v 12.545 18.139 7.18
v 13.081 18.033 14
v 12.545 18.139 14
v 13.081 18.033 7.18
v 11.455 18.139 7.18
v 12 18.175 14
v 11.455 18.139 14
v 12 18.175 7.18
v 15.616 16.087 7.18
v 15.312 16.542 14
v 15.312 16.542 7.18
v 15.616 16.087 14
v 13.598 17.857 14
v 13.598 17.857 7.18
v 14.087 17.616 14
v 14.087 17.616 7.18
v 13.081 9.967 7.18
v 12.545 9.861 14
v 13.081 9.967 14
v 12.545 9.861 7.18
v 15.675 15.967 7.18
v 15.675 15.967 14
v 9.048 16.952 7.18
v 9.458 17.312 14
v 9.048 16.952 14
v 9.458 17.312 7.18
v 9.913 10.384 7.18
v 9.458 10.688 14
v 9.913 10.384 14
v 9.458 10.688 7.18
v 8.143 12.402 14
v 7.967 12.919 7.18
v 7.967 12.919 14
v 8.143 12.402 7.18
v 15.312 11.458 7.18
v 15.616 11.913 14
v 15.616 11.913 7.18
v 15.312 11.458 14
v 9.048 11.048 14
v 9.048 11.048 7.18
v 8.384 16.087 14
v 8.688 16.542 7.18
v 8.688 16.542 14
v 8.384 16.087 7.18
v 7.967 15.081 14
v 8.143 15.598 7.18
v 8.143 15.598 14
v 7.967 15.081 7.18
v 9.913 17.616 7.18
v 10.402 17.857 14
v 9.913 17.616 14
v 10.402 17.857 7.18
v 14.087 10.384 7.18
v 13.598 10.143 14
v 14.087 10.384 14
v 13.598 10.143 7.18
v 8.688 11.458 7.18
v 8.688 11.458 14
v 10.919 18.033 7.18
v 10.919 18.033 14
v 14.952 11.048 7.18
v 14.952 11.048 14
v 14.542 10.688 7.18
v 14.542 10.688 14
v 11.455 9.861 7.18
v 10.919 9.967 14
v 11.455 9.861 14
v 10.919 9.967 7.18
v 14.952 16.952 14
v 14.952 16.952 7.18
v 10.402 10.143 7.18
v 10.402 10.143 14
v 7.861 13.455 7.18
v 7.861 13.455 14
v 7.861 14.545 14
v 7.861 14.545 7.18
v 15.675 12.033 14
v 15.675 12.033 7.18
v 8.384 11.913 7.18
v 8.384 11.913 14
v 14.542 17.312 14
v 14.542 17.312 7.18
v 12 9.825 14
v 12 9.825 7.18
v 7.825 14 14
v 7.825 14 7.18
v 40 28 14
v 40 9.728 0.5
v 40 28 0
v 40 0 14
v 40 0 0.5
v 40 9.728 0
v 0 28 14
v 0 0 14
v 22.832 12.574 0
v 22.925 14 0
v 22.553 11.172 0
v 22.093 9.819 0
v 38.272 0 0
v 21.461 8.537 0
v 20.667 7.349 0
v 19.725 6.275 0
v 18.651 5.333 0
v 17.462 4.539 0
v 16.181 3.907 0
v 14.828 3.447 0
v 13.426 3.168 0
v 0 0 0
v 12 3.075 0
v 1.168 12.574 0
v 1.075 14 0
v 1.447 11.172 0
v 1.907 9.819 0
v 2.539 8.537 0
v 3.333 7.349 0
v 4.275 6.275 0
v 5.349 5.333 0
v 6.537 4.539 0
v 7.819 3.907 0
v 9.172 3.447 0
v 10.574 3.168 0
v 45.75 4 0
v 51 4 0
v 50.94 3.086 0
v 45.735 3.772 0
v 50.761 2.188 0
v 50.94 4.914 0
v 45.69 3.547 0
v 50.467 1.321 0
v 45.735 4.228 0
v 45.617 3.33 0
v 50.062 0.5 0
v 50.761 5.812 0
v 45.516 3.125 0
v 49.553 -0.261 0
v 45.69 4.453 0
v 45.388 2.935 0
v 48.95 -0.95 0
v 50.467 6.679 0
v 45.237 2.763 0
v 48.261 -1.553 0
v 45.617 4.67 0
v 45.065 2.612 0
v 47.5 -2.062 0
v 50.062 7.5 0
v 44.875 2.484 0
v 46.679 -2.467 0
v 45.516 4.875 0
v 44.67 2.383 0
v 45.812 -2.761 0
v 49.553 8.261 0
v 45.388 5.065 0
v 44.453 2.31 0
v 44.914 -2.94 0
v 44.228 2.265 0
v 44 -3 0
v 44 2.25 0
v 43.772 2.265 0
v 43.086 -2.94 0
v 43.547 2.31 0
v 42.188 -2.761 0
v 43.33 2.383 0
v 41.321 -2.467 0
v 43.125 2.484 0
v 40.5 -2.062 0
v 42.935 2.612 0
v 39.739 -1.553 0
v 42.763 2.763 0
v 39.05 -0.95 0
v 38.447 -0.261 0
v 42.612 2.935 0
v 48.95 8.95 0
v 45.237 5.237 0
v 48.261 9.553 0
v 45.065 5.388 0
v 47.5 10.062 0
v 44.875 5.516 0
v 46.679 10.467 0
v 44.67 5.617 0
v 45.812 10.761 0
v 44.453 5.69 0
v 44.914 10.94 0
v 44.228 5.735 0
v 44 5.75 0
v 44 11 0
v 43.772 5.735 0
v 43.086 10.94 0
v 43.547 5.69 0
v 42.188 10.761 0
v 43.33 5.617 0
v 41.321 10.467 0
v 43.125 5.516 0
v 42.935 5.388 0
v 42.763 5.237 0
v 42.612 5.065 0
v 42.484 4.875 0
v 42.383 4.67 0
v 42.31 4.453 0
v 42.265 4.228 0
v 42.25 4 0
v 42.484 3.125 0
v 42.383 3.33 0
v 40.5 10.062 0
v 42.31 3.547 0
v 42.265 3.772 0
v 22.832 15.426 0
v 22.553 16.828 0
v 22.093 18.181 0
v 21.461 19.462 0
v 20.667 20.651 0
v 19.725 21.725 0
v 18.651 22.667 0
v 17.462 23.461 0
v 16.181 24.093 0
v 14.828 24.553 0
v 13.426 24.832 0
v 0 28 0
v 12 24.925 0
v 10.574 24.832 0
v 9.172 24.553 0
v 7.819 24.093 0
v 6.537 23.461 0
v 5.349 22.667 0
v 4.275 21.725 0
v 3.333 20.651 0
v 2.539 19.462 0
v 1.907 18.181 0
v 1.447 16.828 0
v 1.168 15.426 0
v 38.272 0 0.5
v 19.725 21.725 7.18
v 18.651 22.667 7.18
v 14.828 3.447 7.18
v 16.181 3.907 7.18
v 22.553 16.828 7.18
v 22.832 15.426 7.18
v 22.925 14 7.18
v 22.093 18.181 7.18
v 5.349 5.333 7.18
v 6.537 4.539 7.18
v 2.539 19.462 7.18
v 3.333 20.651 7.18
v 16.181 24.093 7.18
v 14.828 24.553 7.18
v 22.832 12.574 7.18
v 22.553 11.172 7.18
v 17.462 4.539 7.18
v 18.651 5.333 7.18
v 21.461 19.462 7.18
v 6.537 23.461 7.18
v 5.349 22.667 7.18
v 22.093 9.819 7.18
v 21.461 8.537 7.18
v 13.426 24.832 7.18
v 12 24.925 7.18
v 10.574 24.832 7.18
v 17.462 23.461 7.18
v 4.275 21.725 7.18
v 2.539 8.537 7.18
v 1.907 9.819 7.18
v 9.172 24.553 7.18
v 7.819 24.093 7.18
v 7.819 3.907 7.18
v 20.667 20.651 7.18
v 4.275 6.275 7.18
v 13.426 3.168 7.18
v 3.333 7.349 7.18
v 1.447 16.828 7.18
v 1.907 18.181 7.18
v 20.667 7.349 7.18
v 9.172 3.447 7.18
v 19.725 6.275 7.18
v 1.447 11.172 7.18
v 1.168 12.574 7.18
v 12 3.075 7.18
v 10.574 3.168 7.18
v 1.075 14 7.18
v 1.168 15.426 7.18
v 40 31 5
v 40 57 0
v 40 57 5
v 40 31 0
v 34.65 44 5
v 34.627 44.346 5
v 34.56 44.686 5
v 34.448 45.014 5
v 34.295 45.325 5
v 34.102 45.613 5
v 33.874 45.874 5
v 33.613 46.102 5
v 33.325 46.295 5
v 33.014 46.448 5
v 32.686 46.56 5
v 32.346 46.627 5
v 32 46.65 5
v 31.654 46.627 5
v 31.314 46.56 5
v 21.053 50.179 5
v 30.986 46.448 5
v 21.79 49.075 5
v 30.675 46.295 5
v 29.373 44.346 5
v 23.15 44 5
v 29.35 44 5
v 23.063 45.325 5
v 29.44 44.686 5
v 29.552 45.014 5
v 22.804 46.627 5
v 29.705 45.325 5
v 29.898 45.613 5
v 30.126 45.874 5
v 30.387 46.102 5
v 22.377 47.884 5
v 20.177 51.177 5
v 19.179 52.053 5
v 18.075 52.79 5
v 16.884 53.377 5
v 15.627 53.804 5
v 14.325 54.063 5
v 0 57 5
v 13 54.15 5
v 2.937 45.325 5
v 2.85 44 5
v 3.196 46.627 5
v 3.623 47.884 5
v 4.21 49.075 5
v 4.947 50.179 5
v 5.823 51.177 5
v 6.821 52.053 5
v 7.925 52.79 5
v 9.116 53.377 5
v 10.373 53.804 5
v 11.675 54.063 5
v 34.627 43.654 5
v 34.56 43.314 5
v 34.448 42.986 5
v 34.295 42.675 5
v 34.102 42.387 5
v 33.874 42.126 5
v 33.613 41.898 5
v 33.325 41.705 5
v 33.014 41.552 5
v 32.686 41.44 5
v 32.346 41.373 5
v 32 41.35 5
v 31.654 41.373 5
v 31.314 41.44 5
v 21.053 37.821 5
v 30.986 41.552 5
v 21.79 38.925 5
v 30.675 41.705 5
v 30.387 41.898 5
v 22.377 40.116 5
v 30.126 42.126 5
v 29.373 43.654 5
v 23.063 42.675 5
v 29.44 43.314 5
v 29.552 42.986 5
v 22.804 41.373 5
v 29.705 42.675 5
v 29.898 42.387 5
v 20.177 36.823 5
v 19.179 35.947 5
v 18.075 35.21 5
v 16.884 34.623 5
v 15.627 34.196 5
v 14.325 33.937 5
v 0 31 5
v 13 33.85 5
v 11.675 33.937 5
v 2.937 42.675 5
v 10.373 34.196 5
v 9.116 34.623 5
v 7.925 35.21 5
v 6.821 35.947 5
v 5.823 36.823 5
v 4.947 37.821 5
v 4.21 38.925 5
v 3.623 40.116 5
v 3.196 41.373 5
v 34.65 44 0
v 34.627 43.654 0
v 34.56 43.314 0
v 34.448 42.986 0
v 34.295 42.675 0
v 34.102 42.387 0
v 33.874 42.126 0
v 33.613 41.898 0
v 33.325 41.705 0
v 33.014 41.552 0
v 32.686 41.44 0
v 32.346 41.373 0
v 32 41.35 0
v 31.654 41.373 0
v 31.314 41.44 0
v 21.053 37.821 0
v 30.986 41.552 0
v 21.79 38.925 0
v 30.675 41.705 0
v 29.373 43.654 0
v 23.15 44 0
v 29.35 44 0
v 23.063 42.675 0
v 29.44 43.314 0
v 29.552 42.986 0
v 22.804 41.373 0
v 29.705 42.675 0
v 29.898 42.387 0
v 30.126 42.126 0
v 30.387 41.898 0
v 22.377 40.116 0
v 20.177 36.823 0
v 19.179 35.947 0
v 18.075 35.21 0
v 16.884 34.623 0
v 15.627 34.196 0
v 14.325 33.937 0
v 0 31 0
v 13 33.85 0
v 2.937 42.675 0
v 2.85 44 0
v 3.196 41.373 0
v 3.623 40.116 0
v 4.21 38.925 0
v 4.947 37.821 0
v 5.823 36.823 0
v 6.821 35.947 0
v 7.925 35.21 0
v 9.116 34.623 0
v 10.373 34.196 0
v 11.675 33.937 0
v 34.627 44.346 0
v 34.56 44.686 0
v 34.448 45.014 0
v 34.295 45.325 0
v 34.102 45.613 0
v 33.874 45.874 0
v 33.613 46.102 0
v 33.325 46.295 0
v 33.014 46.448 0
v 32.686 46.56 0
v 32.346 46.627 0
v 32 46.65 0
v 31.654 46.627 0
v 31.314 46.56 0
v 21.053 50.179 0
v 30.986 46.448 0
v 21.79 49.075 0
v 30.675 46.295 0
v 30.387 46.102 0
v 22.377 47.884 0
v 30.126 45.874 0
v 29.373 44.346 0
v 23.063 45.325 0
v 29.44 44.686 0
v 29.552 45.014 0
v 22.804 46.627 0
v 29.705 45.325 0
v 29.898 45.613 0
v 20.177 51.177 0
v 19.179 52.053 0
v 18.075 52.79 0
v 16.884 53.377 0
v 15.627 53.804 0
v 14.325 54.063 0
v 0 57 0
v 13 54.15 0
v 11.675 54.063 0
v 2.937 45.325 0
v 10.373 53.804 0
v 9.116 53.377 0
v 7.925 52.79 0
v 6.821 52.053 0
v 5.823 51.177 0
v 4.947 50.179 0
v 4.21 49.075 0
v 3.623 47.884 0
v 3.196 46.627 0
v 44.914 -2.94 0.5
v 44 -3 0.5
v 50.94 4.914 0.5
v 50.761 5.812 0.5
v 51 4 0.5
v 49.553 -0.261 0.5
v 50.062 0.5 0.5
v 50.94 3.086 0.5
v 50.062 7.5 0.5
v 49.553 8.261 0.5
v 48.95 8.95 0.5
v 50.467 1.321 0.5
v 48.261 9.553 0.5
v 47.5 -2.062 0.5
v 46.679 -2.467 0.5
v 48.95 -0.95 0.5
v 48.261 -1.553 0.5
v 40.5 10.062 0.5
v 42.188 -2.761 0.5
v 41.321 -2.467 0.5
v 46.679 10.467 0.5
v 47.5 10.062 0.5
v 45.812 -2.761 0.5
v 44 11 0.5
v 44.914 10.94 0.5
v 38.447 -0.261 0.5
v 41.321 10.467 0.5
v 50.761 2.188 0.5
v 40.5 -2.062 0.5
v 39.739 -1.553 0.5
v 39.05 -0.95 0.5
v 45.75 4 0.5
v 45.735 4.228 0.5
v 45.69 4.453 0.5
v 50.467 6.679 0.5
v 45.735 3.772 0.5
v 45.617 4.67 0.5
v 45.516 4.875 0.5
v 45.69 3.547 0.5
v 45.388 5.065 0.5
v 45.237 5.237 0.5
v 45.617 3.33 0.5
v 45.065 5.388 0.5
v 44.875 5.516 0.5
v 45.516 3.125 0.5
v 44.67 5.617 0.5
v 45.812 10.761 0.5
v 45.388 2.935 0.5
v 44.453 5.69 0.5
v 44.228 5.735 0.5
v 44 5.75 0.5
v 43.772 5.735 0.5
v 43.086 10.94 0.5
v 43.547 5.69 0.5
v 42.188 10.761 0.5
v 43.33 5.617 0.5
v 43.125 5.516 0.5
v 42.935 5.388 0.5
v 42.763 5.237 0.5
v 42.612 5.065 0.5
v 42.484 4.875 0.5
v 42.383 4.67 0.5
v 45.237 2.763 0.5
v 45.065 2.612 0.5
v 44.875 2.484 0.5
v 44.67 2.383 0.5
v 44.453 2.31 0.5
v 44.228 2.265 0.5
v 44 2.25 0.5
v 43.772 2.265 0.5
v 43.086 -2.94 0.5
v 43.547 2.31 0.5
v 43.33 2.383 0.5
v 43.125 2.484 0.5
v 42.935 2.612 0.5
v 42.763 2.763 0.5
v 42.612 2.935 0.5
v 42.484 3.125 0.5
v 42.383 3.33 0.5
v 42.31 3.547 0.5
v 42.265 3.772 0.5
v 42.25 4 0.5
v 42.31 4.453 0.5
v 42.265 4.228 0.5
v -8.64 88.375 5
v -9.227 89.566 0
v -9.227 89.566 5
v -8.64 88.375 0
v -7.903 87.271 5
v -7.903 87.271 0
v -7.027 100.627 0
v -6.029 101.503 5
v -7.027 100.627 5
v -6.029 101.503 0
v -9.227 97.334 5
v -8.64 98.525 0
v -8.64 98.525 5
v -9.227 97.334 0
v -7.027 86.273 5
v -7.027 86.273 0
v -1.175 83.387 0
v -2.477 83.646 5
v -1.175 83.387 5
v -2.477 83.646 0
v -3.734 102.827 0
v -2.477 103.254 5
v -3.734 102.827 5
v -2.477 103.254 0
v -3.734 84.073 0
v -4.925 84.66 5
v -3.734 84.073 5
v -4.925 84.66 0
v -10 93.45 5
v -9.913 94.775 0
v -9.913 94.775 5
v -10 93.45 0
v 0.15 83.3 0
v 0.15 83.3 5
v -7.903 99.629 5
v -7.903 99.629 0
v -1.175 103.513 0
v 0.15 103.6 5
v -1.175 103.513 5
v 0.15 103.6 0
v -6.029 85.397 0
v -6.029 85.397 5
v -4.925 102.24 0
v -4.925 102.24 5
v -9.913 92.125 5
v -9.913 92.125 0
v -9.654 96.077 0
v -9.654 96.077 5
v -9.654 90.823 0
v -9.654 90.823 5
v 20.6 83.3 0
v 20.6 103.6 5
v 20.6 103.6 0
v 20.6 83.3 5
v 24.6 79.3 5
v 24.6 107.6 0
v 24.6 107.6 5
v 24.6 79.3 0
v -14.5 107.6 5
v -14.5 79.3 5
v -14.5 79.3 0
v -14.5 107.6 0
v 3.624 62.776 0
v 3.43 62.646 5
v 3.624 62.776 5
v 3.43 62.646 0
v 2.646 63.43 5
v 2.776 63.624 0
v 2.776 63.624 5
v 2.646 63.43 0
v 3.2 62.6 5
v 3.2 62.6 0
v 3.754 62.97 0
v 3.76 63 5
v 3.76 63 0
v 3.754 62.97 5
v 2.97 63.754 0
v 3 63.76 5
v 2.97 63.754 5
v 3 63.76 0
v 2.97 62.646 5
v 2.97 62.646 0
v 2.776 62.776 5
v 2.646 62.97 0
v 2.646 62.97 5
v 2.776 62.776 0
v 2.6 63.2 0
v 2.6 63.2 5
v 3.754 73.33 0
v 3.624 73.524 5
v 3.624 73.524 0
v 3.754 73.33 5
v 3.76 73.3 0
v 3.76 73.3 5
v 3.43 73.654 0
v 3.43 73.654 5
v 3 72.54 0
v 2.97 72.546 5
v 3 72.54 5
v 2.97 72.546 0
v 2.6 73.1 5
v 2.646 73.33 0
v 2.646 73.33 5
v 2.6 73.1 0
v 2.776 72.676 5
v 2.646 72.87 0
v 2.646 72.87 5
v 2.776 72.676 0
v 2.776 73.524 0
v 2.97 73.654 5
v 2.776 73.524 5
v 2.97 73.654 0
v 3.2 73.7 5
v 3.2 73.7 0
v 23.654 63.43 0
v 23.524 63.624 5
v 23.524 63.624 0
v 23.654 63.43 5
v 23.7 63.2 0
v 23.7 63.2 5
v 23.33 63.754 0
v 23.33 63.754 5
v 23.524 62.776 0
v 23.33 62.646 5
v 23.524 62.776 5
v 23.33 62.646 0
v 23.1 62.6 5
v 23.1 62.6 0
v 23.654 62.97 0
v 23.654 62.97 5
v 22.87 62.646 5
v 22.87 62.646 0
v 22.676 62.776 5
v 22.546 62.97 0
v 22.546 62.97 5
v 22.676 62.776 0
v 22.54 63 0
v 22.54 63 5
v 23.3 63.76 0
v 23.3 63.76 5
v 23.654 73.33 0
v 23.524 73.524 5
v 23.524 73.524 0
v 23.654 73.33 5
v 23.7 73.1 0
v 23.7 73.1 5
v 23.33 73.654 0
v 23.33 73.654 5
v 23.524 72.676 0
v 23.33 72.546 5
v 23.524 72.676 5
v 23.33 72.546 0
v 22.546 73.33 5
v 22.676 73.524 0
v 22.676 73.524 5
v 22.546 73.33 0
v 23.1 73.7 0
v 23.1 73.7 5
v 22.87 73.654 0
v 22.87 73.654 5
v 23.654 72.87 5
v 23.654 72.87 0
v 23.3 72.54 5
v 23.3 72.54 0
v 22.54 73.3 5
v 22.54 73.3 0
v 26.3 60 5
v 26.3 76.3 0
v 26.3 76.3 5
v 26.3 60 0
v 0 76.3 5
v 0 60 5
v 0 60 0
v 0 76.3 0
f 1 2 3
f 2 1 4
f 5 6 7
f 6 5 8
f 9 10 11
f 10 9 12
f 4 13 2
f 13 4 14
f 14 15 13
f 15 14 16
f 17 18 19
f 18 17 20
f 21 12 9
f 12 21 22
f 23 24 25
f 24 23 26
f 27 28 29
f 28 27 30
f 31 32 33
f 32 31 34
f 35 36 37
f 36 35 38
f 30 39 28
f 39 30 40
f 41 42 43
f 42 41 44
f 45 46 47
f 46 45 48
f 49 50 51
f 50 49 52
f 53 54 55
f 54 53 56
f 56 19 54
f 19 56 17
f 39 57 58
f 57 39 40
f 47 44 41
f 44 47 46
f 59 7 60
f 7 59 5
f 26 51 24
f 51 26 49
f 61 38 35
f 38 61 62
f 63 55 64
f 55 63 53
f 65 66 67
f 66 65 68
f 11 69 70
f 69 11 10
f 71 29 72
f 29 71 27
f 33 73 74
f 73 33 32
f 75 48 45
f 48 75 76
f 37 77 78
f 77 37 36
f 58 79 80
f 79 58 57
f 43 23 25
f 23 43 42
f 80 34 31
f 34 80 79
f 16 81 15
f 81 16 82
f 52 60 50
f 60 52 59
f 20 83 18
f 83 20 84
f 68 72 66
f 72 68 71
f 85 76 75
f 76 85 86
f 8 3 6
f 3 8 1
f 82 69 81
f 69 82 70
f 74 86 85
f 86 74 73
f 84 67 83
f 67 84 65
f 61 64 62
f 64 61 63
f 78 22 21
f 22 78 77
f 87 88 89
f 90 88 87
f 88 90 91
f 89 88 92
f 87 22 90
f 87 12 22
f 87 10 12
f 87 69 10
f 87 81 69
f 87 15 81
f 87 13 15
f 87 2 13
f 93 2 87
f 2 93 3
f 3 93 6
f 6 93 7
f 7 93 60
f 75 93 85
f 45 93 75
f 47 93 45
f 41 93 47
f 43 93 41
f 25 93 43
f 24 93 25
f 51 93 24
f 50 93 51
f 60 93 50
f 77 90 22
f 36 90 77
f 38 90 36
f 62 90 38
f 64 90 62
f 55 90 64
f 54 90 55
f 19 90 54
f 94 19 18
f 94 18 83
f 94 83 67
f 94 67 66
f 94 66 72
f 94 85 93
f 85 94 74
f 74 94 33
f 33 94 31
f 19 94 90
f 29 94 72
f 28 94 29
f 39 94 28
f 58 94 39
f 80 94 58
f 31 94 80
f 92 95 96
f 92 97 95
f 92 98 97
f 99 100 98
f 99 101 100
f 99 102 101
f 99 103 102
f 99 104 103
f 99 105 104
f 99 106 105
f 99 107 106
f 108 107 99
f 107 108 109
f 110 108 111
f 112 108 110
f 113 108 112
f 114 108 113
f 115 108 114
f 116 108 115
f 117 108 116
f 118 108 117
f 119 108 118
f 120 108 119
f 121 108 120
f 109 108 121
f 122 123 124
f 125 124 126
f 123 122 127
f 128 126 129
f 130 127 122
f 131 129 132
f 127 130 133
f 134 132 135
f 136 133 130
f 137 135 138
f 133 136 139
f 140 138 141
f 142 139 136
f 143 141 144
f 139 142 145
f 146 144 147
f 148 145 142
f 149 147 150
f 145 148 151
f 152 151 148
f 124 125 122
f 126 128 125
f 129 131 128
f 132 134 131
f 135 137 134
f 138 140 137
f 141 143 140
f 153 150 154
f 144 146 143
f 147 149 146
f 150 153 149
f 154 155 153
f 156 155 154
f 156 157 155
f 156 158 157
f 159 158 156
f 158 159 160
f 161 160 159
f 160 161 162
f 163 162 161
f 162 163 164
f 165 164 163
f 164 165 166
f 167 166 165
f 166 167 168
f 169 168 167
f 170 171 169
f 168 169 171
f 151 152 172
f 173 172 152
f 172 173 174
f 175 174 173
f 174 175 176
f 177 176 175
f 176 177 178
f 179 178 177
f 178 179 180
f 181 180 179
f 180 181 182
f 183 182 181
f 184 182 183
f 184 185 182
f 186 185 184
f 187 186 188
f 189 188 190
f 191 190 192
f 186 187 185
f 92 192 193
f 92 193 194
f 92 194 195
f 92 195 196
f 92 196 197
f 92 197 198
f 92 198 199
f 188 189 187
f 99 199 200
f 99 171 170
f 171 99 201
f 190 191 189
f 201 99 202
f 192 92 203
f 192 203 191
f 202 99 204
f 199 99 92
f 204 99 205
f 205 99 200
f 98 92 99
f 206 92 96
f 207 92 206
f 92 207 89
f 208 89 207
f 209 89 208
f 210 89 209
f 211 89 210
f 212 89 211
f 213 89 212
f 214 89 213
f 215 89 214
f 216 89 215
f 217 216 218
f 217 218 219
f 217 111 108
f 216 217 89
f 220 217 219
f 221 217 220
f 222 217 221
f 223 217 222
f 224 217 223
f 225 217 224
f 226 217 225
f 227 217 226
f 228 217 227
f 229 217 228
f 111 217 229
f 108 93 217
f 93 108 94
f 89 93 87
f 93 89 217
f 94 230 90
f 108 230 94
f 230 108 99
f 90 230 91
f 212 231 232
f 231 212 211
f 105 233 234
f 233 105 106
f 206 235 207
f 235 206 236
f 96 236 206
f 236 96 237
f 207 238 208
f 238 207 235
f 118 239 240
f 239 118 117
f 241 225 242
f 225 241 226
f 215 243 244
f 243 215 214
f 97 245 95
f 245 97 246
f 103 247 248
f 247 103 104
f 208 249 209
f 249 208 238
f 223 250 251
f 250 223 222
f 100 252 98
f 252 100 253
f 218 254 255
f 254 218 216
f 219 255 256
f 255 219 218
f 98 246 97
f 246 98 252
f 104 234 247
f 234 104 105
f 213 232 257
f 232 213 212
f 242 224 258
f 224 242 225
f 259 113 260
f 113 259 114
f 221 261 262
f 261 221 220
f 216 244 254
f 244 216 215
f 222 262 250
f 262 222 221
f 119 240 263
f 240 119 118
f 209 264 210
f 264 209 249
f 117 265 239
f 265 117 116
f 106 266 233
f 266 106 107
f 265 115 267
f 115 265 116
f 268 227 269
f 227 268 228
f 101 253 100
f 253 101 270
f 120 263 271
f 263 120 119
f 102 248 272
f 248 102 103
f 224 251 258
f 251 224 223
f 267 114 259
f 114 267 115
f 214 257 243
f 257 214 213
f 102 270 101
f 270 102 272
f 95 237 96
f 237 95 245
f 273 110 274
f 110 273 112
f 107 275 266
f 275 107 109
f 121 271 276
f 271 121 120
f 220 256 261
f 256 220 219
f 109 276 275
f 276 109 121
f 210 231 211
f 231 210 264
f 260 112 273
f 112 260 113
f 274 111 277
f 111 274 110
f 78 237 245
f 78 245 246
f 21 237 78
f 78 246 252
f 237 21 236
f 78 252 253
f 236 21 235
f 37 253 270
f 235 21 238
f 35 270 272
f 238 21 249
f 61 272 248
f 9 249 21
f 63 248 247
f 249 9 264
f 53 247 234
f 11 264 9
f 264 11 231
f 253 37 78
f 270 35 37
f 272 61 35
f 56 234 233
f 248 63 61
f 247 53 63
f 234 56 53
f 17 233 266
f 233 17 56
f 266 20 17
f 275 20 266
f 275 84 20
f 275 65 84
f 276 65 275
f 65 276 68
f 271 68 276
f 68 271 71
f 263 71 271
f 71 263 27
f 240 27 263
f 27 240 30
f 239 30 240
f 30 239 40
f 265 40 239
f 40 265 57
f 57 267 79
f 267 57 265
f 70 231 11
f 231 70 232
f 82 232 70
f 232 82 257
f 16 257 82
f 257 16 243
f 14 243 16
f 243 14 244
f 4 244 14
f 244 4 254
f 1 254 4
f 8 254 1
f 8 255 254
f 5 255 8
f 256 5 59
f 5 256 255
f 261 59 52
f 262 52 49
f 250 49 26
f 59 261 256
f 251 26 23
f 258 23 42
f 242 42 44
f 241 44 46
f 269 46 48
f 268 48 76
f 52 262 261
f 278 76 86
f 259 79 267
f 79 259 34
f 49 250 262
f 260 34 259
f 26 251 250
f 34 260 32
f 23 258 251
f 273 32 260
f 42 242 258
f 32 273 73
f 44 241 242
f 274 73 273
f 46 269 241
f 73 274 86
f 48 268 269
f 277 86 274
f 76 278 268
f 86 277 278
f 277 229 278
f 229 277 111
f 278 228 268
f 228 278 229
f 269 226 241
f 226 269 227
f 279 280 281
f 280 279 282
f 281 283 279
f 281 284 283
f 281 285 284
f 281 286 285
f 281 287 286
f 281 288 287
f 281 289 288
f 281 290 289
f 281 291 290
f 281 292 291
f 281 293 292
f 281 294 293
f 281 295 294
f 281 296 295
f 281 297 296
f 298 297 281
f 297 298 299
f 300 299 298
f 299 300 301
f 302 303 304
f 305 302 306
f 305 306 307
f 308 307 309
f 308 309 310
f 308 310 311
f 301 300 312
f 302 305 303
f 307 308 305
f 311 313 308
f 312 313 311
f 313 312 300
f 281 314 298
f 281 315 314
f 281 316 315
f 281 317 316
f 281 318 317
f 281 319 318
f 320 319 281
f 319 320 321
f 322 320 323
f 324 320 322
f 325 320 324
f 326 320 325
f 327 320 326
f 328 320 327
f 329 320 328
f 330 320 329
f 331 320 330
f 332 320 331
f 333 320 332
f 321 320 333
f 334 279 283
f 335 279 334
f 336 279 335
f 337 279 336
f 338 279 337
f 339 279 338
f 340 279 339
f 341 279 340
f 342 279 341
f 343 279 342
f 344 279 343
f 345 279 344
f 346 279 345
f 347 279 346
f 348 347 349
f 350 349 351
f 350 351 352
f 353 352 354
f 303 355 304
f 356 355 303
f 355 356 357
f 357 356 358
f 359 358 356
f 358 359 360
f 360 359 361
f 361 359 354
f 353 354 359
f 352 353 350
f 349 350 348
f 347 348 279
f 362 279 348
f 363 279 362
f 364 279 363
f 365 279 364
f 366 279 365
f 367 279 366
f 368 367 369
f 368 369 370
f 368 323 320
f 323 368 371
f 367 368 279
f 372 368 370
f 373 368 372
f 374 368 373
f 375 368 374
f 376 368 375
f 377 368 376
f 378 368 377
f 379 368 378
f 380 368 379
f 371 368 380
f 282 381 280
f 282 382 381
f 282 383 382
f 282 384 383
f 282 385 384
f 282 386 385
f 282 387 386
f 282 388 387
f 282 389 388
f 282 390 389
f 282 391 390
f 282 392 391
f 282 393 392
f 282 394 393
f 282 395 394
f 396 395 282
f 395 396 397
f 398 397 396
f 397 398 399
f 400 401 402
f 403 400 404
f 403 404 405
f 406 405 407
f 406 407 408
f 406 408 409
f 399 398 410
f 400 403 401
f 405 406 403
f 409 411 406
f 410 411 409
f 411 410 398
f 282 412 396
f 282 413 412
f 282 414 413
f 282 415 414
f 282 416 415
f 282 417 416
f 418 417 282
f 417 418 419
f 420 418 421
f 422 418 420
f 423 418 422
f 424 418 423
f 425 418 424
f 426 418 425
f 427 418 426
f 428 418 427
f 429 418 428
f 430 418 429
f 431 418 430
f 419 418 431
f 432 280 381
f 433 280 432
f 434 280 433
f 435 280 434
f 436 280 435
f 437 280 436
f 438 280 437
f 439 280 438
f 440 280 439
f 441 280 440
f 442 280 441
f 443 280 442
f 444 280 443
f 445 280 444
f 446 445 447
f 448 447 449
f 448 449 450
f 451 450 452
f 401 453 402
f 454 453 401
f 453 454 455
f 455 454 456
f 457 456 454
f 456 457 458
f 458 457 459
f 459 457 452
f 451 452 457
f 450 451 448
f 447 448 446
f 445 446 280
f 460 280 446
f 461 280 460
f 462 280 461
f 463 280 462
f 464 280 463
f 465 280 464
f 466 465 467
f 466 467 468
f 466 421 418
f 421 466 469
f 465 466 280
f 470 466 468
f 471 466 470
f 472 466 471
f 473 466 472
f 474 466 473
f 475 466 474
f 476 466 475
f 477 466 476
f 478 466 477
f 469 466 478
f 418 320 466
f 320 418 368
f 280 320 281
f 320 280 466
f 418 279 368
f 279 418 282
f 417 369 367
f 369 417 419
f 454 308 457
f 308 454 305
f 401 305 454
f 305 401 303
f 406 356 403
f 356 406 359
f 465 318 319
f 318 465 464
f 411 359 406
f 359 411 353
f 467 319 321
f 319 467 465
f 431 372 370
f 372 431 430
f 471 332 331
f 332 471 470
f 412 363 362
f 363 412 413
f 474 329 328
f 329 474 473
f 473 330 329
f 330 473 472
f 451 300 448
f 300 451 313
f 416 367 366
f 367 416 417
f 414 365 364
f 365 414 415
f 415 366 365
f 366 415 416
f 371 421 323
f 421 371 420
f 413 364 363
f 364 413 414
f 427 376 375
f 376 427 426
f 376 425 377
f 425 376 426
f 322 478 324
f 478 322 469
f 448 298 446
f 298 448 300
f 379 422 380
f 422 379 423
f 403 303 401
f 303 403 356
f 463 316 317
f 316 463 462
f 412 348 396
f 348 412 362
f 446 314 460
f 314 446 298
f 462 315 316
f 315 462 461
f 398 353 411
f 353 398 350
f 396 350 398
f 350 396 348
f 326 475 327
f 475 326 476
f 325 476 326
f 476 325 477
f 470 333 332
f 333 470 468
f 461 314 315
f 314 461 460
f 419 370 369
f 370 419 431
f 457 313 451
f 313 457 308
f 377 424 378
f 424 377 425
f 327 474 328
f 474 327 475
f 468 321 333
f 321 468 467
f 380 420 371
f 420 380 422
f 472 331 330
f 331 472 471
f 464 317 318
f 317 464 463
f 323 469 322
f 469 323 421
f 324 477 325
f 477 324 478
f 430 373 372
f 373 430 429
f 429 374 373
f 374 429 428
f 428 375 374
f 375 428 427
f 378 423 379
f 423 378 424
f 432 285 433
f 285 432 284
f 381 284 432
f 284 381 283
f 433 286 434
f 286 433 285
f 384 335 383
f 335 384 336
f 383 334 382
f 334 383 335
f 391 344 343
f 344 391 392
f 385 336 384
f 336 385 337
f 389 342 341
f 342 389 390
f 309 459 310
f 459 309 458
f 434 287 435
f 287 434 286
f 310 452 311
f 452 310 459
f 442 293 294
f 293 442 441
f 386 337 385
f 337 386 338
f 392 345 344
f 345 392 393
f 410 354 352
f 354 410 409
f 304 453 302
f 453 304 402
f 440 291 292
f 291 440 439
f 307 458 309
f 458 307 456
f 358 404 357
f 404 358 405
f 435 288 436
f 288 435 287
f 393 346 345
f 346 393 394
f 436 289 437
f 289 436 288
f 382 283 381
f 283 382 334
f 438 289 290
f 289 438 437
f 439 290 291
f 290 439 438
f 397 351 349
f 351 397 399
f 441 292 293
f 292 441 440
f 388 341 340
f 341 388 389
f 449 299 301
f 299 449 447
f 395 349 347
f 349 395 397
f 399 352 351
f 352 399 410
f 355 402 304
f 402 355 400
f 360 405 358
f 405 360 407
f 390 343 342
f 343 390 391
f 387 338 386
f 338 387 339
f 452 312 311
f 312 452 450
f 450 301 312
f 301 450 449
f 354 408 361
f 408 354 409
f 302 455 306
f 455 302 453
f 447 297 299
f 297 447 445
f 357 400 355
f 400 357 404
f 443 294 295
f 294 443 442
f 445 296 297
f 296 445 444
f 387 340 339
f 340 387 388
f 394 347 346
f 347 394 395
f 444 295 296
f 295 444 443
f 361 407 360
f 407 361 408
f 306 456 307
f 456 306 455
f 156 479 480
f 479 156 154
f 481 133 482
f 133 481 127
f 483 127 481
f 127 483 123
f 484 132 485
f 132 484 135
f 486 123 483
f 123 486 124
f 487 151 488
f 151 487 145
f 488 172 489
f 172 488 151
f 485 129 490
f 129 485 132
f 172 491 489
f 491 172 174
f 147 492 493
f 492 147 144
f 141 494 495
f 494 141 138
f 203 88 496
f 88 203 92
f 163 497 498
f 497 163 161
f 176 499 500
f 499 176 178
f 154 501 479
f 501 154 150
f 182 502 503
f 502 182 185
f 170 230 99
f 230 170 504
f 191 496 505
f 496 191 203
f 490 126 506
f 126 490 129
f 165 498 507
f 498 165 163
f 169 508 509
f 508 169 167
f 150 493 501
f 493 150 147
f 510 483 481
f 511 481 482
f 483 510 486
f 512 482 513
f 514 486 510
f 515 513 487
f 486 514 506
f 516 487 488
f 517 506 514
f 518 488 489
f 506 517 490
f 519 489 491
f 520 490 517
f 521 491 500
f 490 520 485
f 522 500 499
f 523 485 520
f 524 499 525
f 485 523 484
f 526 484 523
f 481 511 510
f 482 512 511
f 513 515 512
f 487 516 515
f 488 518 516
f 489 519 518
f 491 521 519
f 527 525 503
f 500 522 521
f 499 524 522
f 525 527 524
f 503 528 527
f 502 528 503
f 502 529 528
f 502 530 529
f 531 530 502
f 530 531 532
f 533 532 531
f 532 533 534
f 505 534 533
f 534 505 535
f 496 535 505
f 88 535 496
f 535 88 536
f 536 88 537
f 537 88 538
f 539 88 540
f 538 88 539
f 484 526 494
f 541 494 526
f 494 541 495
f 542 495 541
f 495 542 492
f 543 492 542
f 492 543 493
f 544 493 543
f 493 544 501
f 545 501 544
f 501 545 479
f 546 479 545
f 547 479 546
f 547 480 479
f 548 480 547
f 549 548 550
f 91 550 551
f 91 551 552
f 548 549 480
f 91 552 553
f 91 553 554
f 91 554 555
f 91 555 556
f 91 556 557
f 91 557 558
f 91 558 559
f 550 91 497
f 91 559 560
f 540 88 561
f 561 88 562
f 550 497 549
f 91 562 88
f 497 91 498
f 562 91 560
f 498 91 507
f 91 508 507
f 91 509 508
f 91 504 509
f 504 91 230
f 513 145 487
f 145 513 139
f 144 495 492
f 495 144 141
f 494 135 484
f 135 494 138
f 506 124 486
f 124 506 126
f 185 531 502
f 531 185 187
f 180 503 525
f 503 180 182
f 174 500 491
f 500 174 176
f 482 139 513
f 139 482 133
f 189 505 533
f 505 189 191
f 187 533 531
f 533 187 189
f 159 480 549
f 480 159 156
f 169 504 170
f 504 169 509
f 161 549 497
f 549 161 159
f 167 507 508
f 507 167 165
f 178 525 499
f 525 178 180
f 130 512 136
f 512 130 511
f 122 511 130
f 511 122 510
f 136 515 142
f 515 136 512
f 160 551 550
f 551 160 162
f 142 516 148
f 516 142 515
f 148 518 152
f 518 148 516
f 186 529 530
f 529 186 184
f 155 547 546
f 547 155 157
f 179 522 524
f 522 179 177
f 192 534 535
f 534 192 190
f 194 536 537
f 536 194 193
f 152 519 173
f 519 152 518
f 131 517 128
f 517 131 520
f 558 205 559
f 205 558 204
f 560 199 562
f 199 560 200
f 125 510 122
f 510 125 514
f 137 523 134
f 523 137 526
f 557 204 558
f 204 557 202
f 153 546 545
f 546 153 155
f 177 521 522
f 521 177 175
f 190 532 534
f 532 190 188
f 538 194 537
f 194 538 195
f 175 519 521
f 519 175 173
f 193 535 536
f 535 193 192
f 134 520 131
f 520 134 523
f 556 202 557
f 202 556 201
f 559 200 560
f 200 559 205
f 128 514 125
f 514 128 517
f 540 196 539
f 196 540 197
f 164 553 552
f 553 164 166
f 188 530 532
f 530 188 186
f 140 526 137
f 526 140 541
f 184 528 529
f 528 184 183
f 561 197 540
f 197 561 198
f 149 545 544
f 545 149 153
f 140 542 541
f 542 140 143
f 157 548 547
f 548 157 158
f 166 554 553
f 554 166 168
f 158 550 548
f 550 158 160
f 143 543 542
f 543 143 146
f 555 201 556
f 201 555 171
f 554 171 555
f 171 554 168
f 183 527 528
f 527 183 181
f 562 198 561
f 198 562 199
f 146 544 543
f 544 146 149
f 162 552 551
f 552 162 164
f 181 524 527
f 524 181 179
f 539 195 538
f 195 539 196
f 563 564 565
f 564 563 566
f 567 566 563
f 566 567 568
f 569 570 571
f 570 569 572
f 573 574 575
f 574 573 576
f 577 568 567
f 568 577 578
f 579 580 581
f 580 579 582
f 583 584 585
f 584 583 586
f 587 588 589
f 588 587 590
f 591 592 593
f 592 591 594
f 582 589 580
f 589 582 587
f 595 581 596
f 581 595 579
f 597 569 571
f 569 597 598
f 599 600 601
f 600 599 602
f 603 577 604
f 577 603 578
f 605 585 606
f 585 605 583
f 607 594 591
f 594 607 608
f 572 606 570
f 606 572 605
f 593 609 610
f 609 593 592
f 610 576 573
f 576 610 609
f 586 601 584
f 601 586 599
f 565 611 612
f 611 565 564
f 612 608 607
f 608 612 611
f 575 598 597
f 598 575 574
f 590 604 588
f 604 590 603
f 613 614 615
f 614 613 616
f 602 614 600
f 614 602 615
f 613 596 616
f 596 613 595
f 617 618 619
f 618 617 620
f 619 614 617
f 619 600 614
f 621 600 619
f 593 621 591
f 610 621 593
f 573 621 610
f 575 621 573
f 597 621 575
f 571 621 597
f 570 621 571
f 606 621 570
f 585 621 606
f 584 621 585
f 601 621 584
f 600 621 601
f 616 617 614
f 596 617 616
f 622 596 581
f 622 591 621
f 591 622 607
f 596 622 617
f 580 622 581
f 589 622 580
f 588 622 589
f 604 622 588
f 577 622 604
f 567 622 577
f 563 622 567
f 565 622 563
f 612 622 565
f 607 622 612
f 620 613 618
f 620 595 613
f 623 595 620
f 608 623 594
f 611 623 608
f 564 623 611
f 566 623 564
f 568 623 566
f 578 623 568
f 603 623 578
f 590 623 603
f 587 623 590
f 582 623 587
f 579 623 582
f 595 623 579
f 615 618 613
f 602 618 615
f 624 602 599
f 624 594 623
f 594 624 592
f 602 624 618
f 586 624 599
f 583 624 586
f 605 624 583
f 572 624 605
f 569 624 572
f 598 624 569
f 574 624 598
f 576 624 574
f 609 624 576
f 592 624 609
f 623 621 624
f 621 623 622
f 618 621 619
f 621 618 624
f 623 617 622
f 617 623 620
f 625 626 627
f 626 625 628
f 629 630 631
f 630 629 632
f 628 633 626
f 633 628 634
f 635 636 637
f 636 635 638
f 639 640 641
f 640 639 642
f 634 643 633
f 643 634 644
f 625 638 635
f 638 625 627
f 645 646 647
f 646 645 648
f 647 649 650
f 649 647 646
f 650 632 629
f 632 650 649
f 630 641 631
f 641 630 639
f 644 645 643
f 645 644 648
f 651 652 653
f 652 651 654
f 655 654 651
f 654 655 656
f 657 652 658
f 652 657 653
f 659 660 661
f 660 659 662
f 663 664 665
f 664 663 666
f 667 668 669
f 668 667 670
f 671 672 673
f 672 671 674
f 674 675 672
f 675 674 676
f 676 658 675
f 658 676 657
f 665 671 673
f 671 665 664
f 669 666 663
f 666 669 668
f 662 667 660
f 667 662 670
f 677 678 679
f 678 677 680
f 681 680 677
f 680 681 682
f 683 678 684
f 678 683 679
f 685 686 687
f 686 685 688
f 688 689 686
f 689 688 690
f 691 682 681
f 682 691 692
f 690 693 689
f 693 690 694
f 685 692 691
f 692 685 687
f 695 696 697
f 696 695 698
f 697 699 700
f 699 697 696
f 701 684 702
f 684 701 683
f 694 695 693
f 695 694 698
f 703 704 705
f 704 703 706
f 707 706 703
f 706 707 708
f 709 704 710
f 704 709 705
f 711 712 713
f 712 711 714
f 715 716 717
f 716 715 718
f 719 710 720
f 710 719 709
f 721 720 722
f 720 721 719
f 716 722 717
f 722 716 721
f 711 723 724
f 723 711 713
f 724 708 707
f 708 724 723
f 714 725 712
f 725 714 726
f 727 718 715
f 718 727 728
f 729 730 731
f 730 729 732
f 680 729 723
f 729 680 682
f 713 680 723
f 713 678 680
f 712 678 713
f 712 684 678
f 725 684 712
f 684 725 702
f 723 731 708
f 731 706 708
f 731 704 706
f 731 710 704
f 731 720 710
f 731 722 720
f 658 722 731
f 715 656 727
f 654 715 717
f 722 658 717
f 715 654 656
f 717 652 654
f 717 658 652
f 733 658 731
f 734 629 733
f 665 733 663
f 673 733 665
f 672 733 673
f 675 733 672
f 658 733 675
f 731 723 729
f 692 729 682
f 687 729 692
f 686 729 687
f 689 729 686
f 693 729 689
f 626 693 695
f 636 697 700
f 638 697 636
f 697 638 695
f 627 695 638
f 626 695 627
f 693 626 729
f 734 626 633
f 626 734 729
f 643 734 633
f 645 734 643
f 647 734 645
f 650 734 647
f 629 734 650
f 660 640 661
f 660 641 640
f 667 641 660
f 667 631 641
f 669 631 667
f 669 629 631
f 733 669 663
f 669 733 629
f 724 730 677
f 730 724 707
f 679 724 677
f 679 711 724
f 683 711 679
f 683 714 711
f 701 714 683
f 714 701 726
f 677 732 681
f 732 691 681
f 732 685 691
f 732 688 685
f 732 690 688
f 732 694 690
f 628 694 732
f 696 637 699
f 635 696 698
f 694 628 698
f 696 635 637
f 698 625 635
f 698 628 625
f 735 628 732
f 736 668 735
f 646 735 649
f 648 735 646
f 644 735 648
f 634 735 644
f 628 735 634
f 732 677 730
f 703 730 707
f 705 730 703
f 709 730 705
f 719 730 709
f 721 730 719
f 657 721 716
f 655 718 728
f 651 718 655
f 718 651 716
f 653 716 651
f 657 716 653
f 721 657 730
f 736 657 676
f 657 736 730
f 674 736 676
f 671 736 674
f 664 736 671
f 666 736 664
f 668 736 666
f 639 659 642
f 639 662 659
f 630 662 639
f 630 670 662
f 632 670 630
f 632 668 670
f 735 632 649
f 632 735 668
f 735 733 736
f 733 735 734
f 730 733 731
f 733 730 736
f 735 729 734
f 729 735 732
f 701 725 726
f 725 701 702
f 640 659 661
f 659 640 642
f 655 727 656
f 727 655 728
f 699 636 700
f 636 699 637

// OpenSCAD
// Gen-CR — fit coupon: O20/O5 THROUGH pockets at carrier thickness (test on a steel offcut), 608 seat,
// D-flat bore, gap shim, and one bobbin-bay slice (bobbin footprint + bay_clear) to test former fit.
include <parameters.scad>;
$fn = 48;
// D-flat keyed bore: flat faces +X (angle 0 = magnet pocket 0 = index notch)
module dflat_bore(h) {
    intersection() {
        cylinder(d=shaft_bore, h=h);
        translate([-shaft_bore, -shaft_bore, 0]) cube([shaft_bore + dflat_x, 2*shaft_bore, h]);
    }
}
module sector_2d(r_in, r_out, ang) {
    polygon([
        for (a = [-ang/2 : ang/24 : ang/2]) [r_in*cos(a), r_in*sin(a)],
        for (a = [ang/2 : -ang/24 : -ang/2]) [r_out*cos(a), r_out*sin(a)]
    ]);
}
module footprint_2d() { offset(r=wall) sector_2d(coil_id_r, coil_od_r, span_deg); }
module hub_2d()       { offset(delta=-coil_core_inset) sector_2d(coil_id_r, coil_od_r, span_deg); }

block_w = 40; block_d = 28; block_h = 14;
difference() {
    cube([block_w, block_d, block_h]);
    translate([12, block_d/2, -0.02]) cylinder(d=bearing_d, h=bearing_h);
    translate([12, block_d/2, -0.1]) dflat_bore(block_h + 1);
}
translate([0, block_d + 3, 0]) difference() {
    cube([40, 26, carrier_thick]);
    translate([13, 13, -0.1]) cylinder(d=large_pocket_d, h=carrier_thick + 0.2);
    translate([32, 13, -0.1]) cylinder(d=small_pocket_d, h=carrier_thick + 0.2);
}
translate([block_w + 4, 4, 0])
    difference() {
        cylinder(d=spacer_pad_od, h=gap_spacer_h);
        translate([0, 0, -0.1]) cylinder(d=spacer_pad_id, h=gap_spacer_h + 0.2);
    }
// KEYHOLE pole pocket test (2026-10-18): O20 disc pocket + N42 20x10x5 block pocket merged (hull), as on the arcs.
// Drop a disc and a block in: they must push each other onto the two far walls and sit flat. Block pocket has corner reliefs.
translate([0, block_d + 3 + 26 + 3 + block_radial + block_pocket_clear + 6 + 3 + max(block_tangential, large_pocket_d) / 2 + 4, 0]) difference() {
    translate([-14.5, -(max(block_tangential, large_pocket_d) / 2 + 4), 0]) cube([14.5 + abs(block_R_list[0] - R_large) + block_radial / 2 + 4, max(block_tangential, large_pocket_d) + 8, carrier_thick]);
    translate([0, 0, -0.1]) {
        translate([disc_pocket_shift * sign(block_R_list[0] - R_large), 0, 0]) cylinder(d=large_pocket_d, h=carrier_thick + 0.2);
        translate([disc_pocket_shift * sign(block_R_list[0] - R_large), -(block_tangential + block_pocket_clear)/2, 0])
            cube([abs(block_R_list[0] - R_large) - abs(block_pocket_shift) + (block_radial + block_pocket_clear)/2 - disc_pocket_shift * sign(block_R_list[0] - R_large), block_tangential + block_pocket_clear, carrier_thick + 0.2]);
    }
}
// N42 20x10x5 BLOCK through-pocket test (block + block_pocket_clear, 1.2 mm corner reliefs), 2026-10-16
translate([0, block_d + 3 + 26 + 3, 0]) difference() {
    cube([block_tangential + block_pocket_clear + 6, block_radial + block_pocket_clear + 6, carrier_thick]);
    translate([3, 3, -0.1]) cube([block_tangential + block_pocket_clear, block_radial + block_pocket_clear, carrier_thick + 0.2]);
    for (x = [3.2, 3 + block_tangential + block_pocket_clear - 0.2], y = [3.2, 3 + block_radial + block_pocket_clear - 0.2])
        translate([x, y, -0.1]) cylinder(d=1.2, h=carrier_thick + 0.2, $fn=16);
}
